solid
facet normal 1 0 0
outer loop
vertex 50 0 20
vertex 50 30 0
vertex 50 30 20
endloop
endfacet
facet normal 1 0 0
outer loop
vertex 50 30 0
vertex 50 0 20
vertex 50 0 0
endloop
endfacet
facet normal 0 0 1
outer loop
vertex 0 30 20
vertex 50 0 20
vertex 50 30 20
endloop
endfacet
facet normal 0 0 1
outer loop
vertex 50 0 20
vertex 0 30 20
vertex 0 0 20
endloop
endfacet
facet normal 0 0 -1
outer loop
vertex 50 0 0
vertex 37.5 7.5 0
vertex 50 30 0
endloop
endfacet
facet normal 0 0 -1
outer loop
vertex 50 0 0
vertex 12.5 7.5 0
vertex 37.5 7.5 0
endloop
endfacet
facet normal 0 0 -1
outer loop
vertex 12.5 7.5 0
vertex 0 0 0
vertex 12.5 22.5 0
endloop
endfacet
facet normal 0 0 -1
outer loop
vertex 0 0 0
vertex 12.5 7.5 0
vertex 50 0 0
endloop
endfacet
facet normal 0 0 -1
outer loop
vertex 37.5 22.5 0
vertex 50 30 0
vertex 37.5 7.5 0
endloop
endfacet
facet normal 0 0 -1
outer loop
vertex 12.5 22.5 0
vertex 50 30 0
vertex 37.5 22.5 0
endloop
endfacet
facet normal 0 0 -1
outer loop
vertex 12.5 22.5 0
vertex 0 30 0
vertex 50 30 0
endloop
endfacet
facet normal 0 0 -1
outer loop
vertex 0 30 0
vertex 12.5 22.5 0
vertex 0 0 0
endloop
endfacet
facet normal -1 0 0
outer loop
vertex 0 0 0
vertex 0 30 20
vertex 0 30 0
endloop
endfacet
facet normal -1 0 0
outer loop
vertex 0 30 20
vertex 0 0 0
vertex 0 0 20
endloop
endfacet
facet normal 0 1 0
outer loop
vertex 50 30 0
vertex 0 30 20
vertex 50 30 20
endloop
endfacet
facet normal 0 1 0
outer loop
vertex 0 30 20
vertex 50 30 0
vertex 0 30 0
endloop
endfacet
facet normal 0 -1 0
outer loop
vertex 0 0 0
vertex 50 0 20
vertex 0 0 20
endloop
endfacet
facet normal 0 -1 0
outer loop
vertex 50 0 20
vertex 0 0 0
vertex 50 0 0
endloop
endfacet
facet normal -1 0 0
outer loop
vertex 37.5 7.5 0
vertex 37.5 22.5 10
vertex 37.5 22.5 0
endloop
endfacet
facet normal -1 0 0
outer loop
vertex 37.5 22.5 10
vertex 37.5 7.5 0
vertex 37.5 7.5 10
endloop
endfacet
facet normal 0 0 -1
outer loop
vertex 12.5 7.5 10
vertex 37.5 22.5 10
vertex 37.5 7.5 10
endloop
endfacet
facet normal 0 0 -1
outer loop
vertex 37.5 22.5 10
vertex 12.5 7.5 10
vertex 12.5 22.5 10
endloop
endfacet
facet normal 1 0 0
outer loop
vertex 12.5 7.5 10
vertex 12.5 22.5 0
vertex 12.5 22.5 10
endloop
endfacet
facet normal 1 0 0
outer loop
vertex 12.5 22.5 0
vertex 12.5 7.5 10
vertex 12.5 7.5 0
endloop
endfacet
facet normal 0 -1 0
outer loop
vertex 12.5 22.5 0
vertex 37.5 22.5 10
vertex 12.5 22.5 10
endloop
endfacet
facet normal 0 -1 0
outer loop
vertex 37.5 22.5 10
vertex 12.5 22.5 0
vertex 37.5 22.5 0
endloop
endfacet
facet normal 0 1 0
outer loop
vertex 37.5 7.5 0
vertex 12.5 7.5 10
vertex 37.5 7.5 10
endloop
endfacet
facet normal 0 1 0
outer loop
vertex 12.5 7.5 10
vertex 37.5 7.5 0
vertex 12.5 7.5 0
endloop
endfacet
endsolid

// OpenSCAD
module cavity(width, depth, height, cavity_width, cavity_depth, cavity_height) {
    difference() {
        cube([width, depth, height]);
        translate([width/4, depth/4, 0])
        cube([width/2, depth/2, cavity_height]);
    }
}

// Example usage:
width = 50;
depth = 30;
height = 20;
cavity_width = 20;
cavity_depth = 15;
cavity_height = 10;

difference() {
    cube([width, depth, height]);
    translate([width/4, depth/4, 0])
    cube([width/2, depth/2, cavity_height]);
}
